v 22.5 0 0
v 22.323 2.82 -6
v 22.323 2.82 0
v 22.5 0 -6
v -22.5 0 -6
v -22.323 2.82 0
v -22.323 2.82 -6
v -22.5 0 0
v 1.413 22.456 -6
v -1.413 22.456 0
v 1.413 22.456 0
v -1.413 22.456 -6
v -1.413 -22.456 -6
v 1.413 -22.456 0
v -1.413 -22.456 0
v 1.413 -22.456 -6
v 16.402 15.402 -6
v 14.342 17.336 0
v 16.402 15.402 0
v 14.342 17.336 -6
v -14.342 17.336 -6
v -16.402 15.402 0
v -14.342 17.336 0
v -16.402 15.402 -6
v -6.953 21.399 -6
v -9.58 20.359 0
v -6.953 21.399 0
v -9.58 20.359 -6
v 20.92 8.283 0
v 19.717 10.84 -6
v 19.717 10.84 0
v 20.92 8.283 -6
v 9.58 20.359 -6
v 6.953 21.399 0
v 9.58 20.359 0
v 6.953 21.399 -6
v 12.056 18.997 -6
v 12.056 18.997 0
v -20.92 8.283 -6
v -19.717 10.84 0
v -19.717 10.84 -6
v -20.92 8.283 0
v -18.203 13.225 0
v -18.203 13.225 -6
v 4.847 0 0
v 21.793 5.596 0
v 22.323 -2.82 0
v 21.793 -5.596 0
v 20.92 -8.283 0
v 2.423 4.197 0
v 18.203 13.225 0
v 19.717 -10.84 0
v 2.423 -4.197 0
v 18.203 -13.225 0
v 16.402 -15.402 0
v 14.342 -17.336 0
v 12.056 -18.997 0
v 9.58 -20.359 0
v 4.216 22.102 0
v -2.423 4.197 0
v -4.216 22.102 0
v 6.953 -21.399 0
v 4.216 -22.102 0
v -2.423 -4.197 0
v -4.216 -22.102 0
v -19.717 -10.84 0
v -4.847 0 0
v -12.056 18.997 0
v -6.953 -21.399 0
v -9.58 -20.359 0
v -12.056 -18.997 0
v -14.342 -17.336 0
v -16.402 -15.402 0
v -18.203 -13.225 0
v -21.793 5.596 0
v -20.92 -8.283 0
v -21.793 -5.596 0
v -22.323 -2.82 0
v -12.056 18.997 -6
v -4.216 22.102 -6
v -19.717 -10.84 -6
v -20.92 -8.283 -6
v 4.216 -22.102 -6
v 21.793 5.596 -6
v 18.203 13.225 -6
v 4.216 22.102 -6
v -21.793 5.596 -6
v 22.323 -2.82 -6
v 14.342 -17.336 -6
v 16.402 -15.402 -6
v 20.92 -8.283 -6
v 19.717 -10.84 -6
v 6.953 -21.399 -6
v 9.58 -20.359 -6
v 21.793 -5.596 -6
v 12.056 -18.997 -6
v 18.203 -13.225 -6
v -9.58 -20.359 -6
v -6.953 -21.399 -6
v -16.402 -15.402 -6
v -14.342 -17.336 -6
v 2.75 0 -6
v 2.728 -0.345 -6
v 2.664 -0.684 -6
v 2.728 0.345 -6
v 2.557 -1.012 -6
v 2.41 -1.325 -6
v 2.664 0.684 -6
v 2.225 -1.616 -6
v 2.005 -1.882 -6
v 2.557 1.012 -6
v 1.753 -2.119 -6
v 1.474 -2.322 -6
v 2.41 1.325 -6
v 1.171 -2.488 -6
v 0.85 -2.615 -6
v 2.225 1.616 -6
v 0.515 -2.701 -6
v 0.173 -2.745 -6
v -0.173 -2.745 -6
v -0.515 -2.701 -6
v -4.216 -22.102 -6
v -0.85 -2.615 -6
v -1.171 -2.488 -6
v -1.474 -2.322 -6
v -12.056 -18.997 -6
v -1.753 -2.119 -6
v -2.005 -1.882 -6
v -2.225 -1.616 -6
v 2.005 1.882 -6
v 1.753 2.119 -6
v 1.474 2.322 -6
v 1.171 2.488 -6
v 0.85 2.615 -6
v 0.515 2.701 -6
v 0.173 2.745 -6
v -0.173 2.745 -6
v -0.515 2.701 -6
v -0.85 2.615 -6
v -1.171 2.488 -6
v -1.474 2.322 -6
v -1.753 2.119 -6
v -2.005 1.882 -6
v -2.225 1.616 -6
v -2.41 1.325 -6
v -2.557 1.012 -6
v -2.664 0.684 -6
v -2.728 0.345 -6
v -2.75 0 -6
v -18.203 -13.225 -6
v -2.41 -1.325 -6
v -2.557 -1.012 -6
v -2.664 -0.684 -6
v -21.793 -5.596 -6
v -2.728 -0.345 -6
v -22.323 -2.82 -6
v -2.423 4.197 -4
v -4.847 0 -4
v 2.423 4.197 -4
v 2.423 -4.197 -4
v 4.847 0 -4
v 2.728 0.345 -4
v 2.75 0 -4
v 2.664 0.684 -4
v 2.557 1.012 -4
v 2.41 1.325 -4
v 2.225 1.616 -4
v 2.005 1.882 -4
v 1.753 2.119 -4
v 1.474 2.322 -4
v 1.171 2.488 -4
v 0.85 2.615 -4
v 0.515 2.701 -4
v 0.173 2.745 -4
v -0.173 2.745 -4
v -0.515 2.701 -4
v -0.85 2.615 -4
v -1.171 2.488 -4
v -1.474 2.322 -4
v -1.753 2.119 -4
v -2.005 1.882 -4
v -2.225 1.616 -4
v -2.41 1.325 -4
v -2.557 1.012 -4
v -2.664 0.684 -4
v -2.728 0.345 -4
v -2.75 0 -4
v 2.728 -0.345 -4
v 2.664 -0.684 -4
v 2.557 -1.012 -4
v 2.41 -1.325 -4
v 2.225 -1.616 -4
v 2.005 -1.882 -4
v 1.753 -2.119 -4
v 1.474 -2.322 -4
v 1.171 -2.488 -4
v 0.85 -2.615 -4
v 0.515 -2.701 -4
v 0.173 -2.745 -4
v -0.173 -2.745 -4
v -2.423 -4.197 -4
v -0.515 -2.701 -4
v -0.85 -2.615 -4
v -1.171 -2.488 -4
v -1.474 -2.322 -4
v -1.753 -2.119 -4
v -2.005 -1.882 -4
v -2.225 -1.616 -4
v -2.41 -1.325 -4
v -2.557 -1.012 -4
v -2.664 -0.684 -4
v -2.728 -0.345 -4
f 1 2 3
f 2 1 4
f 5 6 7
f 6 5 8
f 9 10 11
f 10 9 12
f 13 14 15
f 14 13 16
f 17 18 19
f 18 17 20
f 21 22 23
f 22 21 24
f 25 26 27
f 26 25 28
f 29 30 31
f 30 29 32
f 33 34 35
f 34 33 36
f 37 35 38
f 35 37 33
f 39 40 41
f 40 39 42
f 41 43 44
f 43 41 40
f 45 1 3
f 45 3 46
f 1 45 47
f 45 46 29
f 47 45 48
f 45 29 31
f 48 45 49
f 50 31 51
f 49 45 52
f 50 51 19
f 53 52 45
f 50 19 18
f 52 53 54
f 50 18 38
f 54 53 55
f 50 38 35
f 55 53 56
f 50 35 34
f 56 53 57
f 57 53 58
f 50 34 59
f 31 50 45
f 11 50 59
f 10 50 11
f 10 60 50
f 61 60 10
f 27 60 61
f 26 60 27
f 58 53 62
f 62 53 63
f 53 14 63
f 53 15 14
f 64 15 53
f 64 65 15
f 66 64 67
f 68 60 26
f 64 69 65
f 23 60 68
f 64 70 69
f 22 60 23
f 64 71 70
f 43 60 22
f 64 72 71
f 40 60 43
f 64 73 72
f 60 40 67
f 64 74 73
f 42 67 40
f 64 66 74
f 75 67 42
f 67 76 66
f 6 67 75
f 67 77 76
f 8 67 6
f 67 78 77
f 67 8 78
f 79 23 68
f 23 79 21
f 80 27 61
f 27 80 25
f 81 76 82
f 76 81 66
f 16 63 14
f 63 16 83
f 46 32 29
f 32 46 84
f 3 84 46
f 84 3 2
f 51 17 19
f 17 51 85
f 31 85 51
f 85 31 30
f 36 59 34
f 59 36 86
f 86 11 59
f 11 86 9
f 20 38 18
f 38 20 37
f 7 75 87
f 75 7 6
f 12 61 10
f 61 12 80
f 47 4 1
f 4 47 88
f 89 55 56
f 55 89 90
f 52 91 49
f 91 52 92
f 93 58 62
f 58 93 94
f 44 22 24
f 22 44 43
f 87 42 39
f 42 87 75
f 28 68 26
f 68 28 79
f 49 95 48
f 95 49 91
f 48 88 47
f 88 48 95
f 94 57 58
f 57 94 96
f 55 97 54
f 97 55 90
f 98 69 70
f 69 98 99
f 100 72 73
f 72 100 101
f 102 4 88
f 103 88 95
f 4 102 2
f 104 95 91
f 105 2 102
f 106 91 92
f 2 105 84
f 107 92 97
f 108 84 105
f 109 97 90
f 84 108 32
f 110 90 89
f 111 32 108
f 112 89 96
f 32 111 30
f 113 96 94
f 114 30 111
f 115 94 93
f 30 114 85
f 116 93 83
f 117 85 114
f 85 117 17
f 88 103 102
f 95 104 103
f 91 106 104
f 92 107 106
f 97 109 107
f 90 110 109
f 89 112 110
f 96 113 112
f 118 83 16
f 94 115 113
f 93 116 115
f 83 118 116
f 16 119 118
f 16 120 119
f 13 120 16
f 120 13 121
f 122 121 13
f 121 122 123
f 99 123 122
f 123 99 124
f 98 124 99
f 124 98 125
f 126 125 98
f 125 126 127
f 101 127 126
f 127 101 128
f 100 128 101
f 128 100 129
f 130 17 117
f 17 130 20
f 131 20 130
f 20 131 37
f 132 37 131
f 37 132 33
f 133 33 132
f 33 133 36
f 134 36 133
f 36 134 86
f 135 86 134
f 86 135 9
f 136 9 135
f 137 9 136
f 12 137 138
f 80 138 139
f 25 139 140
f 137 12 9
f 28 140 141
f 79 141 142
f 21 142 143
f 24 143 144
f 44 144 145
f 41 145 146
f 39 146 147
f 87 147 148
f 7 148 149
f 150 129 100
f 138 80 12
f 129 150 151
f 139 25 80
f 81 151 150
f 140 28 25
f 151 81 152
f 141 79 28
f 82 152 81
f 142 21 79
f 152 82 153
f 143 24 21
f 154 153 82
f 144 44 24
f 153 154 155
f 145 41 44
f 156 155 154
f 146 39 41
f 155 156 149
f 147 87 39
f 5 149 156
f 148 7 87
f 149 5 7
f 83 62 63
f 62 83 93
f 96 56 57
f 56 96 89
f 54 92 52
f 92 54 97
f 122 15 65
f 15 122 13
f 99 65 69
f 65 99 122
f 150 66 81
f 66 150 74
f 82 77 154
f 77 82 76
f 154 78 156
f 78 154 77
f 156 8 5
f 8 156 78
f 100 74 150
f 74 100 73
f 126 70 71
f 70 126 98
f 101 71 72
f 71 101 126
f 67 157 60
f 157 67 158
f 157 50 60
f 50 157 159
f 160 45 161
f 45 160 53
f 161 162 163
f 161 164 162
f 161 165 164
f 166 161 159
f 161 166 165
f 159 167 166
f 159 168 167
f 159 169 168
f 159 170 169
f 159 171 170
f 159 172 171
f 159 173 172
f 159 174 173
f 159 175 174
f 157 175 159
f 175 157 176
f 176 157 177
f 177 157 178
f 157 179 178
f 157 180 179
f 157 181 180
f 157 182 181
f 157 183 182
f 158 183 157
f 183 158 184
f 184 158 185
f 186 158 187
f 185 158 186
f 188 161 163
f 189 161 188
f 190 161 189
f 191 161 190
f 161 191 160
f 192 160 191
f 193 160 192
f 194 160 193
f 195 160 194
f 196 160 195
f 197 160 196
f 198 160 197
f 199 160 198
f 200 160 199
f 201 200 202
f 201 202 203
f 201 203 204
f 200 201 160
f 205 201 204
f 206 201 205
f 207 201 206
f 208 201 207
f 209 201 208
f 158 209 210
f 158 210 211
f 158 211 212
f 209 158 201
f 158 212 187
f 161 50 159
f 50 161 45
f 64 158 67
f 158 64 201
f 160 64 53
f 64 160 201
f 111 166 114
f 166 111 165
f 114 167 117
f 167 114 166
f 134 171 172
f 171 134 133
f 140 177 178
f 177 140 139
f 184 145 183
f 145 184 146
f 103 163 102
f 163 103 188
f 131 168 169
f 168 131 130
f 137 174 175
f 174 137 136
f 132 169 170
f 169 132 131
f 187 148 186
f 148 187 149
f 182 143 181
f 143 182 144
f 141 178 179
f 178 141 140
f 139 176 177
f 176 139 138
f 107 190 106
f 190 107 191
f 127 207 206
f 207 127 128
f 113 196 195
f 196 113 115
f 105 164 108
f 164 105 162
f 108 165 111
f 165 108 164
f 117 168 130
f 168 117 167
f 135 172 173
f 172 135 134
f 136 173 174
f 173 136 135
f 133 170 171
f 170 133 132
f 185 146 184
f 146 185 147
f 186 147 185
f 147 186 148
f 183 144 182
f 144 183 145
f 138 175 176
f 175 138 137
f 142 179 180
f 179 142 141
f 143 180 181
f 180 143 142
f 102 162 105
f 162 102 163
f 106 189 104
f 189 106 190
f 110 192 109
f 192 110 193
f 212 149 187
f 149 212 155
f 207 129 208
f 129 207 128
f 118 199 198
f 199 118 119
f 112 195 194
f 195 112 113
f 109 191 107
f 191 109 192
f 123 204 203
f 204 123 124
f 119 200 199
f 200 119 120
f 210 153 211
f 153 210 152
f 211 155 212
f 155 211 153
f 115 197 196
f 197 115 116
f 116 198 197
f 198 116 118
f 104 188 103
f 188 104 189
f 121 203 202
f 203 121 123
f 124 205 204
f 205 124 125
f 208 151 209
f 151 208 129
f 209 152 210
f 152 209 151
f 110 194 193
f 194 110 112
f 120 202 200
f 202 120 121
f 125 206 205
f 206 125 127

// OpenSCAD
$fn = 50;


difference() {
	union() {
		translate(v = [0, 0, -6.0000000000]) {
			cylinder(h = 6.0000000000, r = 22.5000000000);
		}
		translate(v = [0, 0, -4.5000000000]) {
			cylinder(h = 4.5000000000, r = 2.8750000000);
		}
	}
	union() {
		translate(v = [0, 0, 0]) {
			rotate(a = [0, 0, 0]) {
				difference() {
					union() {
						translate(v = [0, 0, -4]) {
							linear_extrude(height = 4) {
								polygon(points = [[4.8468000000, 0.0000000000], [2.4234000000, 4.1974519271], [-2.4234000000, 4.1974519271], [-4.8468000000, 0.0000000000], [-2.4234000000, -4.1974519271], [2.4234000000, -4.1974519271]]);
							}
						}
					}
					union();
				}
			}
		}
		#translate(v = [0, 0, -100.0000000000]) {
			cylinder(h = 200, r = 2.7500000000);
		}
	}
}
